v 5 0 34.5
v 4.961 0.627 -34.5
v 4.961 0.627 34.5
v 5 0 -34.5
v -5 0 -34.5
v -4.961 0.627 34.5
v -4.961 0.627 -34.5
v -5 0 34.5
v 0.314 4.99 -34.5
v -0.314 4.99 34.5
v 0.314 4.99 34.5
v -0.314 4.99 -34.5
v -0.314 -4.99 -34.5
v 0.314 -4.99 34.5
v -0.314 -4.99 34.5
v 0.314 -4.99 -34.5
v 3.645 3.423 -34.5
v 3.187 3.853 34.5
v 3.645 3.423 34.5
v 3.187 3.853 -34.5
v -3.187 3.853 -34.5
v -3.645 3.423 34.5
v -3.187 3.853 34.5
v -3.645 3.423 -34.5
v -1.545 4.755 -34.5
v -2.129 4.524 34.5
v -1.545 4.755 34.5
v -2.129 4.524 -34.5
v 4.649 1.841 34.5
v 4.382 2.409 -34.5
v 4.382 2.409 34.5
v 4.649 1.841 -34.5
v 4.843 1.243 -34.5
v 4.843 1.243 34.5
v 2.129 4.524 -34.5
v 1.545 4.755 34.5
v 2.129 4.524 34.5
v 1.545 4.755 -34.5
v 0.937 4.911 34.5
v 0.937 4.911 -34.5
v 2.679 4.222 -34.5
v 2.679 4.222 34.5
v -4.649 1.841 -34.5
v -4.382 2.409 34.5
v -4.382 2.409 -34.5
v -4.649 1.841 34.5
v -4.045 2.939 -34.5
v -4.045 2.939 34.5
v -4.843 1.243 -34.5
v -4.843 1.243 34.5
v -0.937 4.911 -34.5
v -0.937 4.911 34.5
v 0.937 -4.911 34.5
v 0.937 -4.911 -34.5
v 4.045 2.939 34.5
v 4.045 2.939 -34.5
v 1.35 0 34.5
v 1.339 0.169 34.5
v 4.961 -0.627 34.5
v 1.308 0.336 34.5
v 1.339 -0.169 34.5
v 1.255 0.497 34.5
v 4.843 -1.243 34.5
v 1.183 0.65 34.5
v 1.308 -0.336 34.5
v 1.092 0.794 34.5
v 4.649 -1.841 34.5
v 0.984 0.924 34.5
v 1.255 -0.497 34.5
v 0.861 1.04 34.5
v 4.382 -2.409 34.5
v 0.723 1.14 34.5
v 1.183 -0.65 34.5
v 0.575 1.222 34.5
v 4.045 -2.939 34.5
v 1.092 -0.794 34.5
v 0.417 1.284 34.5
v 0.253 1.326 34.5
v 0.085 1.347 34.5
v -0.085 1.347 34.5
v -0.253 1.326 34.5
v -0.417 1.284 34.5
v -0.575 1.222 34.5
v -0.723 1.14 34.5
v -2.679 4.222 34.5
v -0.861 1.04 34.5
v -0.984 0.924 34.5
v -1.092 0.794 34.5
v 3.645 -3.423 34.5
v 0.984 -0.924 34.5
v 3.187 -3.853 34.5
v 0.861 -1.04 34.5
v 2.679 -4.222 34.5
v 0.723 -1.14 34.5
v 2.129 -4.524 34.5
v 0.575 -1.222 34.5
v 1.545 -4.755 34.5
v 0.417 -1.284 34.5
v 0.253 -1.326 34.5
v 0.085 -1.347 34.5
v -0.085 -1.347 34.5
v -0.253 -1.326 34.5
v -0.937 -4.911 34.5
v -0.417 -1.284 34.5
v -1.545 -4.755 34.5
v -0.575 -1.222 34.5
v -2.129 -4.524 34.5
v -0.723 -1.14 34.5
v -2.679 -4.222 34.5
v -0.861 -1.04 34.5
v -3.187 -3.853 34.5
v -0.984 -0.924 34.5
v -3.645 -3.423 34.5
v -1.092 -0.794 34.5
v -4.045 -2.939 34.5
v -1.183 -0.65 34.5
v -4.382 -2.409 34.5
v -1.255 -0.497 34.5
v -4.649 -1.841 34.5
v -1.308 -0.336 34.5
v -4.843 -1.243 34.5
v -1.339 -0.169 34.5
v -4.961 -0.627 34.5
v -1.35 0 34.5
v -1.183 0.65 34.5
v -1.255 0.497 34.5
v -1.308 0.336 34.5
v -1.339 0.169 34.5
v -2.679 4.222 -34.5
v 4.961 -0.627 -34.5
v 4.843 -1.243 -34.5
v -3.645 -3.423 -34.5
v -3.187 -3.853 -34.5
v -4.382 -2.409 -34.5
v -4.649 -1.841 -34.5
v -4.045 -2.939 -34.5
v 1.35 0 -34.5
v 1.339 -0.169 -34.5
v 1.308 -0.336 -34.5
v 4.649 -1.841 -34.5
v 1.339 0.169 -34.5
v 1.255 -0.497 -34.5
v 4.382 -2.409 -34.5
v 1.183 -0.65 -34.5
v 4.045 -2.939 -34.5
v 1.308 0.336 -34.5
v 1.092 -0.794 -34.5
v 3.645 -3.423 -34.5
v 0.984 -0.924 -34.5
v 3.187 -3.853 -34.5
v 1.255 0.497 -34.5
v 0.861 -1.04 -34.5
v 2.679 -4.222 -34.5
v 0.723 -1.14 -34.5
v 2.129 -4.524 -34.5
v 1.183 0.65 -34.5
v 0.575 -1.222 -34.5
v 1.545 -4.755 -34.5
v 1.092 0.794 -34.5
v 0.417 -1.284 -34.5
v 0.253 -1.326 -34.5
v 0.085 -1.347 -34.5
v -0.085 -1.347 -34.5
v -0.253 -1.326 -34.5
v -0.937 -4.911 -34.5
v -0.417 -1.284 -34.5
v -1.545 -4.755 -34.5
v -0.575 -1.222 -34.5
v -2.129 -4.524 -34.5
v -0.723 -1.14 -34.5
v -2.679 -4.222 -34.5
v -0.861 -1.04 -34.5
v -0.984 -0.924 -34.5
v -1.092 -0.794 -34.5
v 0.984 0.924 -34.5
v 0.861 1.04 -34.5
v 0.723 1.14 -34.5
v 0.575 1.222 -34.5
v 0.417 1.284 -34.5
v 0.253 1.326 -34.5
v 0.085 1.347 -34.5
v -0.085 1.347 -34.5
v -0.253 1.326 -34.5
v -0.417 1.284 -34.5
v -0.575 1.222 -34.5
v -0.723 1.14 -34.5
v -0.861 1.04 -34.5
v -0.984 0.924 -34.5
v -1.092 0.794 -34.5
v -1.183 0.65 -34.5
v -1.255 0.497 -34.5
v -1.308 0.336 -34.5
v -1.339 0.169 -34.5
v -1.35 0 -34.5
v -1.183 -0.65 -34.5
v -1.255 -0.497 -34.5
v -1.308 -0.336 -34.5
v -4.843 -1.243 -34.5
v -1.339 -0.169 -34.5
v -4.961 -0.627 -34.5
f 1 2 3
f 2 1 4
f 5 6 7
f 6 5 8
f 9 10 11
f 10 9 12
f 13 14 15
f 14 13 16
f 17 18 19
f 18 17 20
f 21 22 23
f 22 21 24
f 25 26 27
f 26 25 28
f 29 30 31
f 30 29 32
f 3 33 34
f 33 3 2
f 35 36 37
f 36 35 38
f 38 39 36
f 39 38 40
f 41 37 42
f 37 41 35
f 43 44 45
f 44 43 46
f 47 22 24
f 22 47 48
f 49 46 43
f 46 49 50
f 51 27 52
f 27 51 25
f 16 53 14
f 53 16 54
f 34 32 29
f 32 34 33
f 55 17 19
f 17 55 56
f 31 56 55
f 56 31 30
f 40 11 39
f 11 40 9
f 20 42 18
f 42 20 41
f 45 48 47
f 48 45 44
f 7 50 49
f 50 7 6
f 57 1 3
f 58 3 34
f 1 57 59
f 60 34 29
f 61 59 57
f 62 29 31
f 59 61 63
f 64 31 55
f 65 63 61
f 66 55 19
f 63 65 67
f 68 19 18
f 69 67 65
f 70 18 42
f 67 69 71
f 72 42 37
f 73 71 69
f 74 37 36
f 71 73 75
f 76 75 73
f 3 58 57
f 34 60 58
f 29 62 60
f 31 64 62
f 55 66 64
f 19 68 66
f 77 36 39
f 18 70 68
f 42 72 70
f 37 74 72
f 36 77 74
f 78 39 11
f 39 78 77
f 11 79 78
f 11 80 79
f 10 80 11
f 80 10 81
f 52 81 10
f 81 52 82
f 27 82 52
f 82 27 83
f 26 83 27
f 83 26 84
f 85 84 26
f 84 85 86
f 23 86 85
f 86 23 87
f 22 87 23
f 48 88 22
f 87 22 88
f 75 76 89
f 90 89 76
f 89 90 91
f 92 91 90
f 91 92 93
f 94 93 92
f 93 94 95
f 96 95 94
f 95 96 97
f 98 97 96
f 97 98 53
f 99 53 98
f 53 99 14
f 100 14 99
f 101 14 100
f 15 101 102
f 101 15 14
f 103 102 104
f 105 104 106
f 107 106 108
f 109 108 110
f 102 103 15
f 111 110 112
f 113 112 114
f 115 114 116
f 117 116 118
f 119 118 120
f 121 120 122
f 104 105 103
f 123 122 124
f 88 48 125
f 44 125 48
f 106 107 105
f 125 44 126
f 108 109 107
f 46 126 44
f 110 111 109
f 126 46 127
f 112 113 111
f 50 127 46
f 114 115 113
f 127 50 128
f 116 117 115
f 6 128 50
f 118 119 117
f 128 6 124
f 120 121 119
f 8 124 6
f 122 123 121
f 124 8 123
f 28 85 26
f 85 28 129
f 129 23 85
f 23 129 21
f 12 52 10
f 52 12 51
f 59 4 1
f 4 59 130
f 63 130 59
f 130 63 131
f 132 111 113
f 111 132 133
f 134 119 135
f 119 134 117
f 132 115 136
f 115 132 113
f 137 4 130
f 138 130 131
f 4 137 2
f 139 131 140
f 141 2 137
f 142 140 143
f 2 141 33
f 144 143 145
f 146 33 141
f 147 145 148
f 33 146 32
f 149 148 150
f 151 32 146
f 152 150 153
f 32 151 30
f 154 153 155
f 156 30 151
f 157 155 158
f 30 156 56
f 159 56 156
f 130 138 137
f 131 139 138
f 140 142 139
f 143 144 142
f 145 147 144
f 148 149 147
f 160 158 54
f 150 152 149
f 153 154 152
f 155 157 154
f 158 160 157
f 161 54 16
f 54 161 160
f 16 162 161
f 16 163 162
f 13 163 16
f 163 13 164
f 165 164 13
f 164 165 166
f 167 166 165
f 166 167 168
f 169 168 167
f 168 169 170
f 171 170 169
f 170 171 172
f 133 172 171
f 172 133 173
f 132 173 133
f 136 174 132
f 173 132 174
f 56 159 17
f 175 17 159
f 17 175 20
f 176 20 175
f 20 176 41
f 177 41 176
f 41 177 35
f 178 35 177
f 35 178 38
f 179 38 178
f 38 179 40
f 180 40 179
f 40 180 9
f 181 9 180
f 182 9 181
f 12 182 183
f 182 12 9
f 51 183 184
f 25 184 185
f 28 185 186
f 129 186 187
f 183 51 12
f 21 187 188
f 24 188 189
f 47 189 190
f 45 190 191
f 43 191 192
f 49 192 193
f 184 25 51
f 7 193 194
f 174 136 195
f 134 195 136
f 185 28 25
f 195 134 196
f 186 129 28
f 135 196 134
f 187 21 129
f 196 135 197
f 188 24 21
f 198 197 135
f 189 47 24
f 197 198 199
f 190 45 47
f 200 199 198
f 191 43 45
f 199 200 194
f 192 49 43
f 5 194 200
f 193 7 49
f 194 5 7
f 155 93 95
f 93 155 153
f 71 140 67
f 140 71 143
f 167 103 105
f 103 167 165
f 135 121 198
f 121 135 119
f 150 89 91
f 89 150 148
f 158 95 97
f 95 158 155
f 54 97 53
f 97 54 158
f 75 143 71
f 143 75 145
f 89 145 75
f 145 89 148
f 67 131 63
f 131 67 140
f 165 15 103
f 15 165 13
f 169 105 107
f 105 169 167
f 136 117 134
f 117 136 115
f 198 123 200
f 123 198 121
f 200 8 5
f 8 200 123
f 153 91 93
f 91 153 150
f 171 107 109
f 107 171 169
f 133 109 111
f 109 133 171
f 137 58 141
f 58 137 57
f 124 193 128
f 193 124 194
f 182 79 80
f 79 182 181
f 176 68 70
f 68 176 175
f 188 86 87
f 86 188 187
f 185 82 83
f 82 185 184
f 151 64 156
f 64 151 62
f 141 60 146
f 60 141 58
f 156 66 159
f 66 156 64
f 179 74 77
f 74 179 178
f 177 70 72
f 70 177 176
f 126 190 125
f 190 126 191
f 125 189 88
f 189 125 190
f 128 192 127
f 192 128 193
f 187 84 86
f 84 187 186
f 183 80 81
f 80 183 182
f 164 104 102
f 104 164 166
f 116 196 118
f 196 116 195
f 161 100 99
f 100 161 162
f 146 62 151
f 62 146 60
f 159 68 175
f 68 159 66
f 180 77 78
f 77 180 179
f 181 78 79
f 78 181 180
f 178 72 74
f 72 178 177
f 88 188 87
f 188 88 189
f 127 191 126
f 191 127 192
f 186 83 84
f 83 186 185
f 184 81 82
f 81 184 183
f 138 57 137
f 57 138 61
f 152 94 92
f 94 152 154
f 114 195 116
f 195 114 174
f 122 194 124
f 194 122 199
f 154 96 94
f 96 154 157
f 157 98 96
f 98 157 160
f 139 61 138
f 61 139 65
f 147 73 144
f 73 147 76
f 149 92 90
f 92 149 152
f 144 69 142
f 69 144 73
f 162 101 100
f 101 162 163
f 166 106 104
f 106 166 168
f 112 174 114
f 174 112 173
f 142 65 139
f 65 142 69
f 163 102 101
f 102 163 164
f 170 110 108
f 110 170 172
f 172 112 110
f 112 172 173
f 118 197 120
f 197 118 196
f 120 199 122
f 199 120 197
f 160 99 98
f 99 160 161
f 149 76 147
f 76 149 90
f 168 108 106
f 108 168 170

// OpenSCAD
$fn = 50;


difference() {
	union() {
		translate(v = [0, 0, -34.5000000000]) {
			cylinder(h = 69, r = 5.0000000000);
		}
	}
	union() {
		translate(v = [0, 0, -100.0000000000]) {
			cylinder(h = 200, r = 1.3500000000);
		}
	}
}
